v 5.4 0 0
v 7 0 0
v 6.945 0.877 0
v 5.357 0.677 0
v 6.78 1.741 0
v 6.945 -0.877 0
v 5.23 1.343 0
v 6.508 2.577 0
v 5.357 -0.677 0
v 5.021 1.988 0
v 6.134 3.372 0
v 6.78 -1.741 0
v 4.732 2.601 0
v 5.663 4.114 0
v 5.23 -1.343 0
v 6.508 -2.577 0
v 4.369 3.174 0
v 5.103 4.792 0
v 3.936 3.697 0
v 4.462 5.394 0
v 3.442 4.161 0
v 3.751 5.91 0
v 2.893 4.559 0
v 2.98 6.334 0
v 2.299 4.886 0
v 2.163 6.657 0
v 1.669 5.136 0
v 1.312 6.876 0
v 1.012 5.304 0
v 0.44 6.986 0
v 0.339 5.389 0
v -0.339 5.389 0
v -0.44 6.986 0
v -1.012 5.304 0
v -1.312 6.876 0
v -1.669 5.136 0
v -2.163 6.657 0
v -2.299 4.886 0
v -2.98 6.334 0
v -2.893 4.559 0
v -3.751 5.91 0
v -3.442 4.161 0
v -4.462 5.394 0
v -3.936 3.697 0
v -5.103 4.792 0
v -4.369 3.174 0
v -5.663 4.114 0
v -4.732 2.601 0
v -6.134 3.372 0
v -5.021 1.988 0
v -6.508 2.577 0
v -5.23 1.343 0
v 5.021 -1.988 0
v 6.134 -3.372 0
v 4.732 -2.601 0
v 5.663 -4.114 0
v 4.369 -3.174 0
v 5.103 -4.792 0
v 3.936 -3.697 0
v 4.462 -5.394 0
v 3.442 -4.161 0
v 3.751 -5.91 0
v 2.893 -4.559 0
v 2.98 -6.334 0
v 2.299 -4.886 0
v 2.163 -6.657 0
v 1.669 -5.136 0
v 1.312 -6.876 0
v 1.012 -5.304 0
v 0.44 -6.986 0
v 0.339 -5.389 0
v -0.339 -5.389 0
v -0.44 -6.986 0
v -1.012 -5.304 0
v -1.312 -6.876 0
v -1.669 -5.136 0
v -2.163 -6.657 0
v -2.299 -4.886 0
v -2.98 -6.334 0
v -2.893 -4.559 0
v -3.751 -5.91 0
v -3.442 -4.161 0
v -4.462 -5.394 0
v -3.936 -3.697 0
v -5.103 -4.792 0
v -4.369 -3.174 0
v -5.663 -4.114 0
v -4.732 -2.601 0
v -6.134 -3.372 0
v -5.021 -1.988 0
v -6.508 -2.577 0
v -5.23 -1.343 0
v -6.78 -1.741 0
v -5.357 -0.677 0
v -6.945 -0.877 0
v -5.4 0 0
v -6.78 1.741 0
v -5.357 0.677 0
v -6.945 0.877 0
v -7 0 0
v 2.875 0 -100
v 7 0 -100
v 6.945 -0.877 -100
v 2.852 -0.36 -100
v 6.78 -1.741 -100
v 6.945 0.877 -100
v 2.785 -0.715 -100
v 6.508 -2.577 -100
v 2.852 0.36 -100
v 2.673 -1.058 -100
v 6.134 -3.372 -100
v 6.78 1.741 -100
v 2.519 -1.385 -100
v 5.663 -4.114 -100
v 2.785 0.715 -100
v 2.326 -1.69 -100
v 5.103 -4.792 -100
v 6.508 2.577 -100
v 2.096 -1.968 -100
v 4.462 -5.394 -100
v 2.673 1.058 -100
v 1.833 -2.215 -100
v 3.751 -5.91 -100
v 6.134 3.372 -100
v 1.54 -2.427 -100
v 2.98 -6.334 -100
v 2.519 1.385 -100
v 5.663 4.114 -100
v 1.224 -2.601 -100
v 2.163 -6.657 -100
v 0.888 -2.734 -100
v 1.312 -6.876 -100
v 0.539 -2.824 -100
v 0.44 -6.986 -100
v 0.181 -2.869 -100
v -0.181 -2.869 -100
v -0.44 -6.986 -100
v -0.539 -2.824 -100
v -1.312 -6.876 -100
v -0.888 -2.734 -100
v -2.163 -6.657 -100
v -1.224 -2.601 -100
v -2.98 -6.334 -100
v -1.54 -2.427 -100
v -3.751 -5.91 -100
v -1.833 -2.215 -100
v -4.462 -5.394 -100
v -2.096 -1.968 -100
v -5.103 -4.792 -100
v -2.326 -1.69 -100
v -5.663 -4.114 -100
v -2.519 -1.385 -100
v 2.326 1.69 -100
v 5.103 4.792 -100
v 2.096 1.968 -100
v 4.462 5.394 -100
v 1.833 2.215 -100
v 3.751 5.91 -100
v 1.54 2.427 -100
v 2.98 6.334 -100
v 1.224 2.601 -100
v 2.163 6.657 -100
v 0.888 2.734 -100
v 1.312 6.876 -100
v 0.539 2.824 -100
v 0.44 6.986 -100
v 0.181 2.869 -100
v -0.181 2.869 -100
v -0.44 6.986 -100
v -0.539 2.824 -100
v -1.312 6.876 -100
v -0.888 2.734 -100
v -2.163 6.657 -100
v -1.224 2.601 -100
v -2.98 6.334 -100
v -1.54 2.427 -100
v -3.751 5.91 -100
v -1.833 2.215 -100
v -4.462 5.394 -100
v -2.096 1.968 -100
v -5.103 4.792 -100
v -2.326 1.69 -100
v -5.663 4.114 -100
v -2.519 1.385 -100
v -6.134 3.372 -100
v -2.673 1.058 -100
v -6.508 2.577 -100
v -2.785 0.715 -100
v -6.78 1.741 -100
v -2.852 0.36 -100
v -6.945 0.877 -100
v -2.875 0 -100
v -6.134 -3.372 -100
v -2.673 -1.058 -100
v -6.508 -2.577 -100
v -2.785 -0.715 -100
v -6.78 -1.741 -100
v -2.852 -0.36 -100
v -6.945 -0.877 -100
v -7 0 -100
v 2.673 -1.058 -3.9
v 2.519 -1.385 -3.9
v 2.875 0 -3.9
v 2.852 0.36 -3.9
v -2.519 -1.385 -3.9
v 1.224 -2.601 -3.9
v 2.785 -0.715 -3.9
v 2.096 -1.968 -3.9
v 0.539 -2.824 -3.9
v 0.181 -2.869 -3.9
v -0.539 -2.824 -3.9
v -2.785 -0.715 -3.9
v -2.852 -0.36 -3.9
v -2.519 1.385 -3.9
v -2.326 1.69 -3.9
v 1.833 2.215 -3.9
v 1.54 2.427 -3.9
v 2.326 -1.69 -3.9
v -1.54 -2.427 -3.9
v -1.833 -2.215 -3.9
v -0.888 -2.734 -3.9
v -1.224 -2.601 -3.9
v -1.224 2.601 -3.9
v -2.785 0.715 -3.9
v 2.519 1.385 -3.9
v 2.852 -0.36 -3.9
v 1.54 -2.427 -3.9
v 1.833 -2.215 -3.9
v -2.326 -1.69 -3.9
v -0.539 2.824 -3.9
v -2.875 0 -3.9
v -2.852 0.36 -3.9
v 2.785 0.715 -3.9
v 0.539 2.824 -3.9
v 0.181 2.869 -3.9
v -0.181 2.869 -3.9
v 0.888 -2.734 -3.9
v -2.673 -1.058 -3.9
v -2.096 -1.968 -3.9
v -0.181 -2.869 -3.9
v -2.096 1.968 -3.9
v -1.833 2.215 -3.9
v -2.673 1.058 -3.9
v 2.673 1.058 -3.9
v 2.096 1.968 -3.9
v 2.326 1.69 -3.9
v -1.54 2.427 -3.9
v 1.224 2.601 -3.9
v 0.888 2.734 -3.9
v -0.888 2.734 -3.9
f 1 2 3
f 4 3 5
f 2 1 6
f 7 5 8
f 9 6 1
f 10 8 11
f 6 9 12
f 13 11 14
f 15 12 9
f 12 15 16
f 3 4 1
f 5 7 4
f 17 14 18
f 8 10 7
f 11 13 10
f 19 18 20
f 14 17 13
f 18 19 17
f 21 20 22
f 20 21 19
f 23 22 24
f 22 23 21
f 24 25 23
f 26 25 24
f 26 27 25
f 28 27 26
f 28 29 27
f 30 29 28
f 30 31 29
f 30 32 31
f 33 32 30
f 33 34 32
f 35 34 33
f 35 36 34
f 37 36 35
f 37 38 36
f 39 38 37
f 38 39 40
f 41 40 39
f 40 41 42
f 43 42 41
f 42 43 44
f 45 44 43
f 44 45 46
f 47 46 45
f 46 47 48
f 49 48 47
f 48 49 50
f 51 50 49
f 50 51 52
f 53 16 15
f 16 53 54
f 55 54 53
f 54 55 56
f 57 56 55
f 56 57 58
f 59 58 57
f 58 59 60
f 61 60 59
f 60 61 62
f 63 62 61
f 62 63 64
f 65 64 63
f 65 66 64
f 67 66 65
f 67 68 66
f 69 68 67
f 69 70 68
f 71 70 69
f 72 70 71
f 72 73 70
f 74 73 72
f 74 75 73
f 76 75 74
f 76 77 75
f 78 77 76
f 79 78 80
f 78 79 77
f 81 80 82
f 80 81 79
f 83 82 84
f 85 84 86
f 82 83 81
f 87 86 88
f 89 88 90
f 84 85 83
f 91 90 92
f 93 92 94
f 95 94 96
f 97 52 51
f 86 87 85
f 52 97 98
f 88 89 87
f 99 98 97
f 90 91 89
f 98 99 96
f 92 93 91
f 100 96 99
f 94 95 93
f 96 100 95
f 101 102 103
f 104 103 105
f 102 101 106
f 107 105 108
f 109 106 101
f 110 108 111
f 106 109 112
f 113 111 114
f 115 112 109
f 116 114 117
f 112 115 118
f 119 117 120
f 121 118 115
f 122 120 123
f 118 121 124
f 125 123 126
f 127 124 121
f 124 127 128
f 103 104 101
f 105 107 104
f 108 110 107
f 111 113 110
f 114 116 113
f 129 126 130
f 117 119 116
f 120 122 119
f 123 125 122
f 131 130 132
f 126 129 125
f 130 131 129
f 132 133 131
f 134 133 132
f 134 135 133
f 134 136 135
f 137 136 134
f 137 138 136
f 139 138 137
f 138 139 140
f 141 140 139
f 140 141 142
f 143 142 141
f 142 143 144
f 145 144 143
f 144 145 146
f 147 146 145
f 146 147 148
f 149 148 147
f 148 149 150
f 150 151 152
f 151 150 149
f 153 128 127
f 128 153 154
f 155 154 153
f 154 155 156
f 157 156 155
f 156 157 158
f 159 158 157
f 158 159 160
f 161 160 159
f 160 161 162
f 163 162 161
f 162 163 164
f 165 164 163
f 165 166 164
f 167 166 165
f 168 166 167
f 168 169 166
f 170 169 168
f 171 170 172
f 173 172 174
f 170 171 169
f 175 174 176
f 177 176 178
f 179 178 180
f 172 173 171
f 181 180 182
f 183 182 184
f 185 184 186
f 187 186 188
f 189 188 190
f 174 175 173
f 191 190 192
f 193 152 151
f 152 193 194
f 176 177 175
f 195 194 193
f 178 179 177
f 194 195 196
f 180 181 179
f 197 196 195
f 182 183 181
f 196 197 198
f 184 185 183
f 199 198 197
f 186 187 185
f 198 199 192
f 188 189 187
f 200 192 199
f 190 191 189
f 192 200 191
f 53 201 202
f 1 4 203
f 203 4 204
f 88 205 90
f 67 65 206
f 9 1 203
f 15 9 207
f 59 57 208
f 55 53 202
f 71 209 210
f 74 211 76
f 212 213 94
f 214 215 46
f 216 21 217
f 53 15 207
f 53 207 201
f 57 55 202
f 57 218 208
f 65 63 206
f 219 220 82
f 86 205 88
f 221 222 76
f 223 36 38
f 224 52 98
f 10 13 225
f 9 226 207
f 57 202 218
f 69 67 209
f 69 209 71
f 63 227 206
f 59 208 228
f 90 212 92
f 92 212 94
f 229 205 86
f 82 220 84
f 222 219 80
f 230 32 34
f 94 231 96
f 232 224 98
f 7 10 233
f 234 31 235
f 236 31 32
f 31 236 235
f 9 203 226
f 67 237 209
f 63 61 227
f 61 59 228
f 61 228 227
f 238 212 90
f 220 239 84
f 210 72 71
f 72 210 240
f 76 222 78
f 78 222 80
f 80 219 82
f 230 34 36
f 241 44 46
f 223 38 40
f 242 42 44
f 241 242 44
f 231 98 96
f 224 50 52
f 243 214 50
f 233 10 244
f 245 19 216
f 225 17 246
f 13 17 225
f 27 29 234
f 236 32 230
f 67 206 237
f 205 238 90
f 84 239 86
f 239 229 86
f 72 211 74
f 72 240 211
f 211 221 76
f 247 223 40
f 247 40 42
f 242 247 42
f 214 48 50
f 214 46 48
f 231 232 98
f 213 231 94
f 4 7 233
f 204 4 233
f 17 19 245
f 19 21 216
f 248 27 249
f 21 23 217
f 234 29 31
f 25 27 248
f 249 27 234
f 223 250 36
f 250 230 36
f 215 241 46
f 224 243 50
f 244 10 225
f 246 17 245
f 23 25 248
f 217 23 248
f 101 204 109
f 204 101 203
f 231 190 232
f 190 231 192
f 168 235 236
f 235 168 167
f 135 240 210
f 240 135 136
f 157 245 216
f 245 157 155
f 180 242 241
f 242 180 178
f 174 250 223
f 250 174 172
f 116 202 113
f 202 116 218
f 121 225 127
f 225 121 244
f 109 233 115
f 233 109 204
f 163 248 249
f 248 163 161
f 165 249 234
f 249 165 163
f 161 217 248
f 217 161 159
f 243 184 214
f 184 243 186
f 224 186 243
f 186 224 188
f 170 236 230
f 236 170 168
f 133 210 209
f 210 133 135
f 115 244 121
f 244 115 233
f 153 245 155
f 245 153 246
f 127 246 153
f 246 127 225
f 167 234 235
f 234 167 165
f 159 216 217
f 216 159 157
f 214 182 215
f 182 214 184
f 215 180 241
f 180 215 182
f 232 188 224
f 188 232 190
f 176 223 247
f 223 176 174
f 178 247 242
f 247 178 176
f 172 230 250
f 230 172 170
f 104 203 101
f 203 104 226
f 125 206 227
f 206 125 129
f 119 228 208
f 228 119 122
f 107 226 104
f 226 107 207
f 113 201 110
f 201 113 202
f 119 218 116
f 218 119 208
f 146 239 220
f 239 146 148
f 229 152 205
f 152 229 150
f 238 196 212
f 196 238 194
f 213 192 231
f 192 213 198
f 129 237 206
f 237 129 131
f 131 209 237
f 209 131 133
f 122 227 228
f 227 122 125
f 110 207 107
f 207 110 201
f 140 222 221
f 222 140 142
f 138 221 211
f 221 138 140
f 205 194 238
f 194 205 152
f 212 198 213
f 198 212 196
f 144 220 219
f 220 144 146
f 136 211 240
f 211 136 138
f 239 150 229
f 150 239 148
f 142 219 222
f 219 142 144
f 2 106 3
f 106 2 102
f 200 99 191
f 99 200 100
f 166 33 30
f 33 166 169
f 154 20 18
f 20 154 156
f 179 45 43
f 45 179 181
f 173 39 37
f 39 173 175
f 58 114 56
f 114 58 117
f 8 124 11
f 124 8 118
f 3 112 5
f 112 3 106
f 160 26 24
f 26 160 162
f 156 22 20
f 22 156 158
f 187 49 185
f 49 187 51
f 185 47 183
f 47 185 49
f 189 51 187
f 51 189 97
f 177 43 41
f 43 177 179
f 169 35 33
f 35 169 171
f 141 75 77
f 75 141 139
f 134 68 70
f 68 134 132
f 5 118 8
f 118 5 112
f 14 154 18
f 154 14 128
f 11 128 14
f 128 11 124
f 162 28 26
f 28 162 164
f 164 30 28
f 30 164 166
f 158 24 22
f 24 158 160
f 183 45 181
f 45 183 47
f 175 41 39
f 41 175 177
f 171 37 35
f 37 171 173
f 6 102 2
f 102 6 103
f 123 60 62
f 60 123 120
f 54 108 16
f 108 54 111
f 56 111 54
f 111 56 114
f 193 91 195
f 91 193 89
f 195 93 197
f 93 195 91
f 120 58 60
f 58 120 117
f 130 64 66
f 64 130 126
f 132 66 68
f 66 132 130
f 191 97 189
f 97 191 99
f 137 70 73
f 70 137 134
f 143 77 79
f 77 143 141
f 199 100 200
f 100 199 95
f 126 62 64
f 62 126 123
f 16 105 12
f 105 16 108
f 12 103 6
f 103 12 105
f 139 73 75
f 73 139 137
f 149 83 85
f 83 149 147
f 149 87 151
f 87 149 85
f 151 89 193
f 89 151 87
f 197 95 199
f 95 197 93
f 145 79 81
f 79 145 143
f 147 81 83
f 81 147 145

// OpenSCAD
$fn = 50;


difference() {
	union() {
		translate(v = [0, 0, -100.0000000000]) {
			cylinder(h = 100, r = 7.0000000000);
		}
		cylinder(h = 0, r = 16.0000000000);
	}
	union() {
		translate(v = [0, 0, 0]) {
			rotate(a = [0, 0, 0]) {
				difference() {
					union() {
						#translate(v = [0, 0, -100.0000000000]) {
							cylinder(h = 100, r = 2.6000000000);
						}
						#translate(v = [0, 0, -3.9000000000]) {
							cylinder(h = 3.9000000000, r = 7.0000000000, r1 = 2.8750000000, r2 = 5.4000000000);
						}
						#translate(v = [0, 0, -100.0000000000]) {
							cylinder(h = 100, r = 2.8750000000);
						}
						#translate(v = [0, 0, -100.0000000000]) {
							cylinder(h = 100, r = 2.6000000000);
						}
					}
					union();
				}
			}
		}
	}
}
